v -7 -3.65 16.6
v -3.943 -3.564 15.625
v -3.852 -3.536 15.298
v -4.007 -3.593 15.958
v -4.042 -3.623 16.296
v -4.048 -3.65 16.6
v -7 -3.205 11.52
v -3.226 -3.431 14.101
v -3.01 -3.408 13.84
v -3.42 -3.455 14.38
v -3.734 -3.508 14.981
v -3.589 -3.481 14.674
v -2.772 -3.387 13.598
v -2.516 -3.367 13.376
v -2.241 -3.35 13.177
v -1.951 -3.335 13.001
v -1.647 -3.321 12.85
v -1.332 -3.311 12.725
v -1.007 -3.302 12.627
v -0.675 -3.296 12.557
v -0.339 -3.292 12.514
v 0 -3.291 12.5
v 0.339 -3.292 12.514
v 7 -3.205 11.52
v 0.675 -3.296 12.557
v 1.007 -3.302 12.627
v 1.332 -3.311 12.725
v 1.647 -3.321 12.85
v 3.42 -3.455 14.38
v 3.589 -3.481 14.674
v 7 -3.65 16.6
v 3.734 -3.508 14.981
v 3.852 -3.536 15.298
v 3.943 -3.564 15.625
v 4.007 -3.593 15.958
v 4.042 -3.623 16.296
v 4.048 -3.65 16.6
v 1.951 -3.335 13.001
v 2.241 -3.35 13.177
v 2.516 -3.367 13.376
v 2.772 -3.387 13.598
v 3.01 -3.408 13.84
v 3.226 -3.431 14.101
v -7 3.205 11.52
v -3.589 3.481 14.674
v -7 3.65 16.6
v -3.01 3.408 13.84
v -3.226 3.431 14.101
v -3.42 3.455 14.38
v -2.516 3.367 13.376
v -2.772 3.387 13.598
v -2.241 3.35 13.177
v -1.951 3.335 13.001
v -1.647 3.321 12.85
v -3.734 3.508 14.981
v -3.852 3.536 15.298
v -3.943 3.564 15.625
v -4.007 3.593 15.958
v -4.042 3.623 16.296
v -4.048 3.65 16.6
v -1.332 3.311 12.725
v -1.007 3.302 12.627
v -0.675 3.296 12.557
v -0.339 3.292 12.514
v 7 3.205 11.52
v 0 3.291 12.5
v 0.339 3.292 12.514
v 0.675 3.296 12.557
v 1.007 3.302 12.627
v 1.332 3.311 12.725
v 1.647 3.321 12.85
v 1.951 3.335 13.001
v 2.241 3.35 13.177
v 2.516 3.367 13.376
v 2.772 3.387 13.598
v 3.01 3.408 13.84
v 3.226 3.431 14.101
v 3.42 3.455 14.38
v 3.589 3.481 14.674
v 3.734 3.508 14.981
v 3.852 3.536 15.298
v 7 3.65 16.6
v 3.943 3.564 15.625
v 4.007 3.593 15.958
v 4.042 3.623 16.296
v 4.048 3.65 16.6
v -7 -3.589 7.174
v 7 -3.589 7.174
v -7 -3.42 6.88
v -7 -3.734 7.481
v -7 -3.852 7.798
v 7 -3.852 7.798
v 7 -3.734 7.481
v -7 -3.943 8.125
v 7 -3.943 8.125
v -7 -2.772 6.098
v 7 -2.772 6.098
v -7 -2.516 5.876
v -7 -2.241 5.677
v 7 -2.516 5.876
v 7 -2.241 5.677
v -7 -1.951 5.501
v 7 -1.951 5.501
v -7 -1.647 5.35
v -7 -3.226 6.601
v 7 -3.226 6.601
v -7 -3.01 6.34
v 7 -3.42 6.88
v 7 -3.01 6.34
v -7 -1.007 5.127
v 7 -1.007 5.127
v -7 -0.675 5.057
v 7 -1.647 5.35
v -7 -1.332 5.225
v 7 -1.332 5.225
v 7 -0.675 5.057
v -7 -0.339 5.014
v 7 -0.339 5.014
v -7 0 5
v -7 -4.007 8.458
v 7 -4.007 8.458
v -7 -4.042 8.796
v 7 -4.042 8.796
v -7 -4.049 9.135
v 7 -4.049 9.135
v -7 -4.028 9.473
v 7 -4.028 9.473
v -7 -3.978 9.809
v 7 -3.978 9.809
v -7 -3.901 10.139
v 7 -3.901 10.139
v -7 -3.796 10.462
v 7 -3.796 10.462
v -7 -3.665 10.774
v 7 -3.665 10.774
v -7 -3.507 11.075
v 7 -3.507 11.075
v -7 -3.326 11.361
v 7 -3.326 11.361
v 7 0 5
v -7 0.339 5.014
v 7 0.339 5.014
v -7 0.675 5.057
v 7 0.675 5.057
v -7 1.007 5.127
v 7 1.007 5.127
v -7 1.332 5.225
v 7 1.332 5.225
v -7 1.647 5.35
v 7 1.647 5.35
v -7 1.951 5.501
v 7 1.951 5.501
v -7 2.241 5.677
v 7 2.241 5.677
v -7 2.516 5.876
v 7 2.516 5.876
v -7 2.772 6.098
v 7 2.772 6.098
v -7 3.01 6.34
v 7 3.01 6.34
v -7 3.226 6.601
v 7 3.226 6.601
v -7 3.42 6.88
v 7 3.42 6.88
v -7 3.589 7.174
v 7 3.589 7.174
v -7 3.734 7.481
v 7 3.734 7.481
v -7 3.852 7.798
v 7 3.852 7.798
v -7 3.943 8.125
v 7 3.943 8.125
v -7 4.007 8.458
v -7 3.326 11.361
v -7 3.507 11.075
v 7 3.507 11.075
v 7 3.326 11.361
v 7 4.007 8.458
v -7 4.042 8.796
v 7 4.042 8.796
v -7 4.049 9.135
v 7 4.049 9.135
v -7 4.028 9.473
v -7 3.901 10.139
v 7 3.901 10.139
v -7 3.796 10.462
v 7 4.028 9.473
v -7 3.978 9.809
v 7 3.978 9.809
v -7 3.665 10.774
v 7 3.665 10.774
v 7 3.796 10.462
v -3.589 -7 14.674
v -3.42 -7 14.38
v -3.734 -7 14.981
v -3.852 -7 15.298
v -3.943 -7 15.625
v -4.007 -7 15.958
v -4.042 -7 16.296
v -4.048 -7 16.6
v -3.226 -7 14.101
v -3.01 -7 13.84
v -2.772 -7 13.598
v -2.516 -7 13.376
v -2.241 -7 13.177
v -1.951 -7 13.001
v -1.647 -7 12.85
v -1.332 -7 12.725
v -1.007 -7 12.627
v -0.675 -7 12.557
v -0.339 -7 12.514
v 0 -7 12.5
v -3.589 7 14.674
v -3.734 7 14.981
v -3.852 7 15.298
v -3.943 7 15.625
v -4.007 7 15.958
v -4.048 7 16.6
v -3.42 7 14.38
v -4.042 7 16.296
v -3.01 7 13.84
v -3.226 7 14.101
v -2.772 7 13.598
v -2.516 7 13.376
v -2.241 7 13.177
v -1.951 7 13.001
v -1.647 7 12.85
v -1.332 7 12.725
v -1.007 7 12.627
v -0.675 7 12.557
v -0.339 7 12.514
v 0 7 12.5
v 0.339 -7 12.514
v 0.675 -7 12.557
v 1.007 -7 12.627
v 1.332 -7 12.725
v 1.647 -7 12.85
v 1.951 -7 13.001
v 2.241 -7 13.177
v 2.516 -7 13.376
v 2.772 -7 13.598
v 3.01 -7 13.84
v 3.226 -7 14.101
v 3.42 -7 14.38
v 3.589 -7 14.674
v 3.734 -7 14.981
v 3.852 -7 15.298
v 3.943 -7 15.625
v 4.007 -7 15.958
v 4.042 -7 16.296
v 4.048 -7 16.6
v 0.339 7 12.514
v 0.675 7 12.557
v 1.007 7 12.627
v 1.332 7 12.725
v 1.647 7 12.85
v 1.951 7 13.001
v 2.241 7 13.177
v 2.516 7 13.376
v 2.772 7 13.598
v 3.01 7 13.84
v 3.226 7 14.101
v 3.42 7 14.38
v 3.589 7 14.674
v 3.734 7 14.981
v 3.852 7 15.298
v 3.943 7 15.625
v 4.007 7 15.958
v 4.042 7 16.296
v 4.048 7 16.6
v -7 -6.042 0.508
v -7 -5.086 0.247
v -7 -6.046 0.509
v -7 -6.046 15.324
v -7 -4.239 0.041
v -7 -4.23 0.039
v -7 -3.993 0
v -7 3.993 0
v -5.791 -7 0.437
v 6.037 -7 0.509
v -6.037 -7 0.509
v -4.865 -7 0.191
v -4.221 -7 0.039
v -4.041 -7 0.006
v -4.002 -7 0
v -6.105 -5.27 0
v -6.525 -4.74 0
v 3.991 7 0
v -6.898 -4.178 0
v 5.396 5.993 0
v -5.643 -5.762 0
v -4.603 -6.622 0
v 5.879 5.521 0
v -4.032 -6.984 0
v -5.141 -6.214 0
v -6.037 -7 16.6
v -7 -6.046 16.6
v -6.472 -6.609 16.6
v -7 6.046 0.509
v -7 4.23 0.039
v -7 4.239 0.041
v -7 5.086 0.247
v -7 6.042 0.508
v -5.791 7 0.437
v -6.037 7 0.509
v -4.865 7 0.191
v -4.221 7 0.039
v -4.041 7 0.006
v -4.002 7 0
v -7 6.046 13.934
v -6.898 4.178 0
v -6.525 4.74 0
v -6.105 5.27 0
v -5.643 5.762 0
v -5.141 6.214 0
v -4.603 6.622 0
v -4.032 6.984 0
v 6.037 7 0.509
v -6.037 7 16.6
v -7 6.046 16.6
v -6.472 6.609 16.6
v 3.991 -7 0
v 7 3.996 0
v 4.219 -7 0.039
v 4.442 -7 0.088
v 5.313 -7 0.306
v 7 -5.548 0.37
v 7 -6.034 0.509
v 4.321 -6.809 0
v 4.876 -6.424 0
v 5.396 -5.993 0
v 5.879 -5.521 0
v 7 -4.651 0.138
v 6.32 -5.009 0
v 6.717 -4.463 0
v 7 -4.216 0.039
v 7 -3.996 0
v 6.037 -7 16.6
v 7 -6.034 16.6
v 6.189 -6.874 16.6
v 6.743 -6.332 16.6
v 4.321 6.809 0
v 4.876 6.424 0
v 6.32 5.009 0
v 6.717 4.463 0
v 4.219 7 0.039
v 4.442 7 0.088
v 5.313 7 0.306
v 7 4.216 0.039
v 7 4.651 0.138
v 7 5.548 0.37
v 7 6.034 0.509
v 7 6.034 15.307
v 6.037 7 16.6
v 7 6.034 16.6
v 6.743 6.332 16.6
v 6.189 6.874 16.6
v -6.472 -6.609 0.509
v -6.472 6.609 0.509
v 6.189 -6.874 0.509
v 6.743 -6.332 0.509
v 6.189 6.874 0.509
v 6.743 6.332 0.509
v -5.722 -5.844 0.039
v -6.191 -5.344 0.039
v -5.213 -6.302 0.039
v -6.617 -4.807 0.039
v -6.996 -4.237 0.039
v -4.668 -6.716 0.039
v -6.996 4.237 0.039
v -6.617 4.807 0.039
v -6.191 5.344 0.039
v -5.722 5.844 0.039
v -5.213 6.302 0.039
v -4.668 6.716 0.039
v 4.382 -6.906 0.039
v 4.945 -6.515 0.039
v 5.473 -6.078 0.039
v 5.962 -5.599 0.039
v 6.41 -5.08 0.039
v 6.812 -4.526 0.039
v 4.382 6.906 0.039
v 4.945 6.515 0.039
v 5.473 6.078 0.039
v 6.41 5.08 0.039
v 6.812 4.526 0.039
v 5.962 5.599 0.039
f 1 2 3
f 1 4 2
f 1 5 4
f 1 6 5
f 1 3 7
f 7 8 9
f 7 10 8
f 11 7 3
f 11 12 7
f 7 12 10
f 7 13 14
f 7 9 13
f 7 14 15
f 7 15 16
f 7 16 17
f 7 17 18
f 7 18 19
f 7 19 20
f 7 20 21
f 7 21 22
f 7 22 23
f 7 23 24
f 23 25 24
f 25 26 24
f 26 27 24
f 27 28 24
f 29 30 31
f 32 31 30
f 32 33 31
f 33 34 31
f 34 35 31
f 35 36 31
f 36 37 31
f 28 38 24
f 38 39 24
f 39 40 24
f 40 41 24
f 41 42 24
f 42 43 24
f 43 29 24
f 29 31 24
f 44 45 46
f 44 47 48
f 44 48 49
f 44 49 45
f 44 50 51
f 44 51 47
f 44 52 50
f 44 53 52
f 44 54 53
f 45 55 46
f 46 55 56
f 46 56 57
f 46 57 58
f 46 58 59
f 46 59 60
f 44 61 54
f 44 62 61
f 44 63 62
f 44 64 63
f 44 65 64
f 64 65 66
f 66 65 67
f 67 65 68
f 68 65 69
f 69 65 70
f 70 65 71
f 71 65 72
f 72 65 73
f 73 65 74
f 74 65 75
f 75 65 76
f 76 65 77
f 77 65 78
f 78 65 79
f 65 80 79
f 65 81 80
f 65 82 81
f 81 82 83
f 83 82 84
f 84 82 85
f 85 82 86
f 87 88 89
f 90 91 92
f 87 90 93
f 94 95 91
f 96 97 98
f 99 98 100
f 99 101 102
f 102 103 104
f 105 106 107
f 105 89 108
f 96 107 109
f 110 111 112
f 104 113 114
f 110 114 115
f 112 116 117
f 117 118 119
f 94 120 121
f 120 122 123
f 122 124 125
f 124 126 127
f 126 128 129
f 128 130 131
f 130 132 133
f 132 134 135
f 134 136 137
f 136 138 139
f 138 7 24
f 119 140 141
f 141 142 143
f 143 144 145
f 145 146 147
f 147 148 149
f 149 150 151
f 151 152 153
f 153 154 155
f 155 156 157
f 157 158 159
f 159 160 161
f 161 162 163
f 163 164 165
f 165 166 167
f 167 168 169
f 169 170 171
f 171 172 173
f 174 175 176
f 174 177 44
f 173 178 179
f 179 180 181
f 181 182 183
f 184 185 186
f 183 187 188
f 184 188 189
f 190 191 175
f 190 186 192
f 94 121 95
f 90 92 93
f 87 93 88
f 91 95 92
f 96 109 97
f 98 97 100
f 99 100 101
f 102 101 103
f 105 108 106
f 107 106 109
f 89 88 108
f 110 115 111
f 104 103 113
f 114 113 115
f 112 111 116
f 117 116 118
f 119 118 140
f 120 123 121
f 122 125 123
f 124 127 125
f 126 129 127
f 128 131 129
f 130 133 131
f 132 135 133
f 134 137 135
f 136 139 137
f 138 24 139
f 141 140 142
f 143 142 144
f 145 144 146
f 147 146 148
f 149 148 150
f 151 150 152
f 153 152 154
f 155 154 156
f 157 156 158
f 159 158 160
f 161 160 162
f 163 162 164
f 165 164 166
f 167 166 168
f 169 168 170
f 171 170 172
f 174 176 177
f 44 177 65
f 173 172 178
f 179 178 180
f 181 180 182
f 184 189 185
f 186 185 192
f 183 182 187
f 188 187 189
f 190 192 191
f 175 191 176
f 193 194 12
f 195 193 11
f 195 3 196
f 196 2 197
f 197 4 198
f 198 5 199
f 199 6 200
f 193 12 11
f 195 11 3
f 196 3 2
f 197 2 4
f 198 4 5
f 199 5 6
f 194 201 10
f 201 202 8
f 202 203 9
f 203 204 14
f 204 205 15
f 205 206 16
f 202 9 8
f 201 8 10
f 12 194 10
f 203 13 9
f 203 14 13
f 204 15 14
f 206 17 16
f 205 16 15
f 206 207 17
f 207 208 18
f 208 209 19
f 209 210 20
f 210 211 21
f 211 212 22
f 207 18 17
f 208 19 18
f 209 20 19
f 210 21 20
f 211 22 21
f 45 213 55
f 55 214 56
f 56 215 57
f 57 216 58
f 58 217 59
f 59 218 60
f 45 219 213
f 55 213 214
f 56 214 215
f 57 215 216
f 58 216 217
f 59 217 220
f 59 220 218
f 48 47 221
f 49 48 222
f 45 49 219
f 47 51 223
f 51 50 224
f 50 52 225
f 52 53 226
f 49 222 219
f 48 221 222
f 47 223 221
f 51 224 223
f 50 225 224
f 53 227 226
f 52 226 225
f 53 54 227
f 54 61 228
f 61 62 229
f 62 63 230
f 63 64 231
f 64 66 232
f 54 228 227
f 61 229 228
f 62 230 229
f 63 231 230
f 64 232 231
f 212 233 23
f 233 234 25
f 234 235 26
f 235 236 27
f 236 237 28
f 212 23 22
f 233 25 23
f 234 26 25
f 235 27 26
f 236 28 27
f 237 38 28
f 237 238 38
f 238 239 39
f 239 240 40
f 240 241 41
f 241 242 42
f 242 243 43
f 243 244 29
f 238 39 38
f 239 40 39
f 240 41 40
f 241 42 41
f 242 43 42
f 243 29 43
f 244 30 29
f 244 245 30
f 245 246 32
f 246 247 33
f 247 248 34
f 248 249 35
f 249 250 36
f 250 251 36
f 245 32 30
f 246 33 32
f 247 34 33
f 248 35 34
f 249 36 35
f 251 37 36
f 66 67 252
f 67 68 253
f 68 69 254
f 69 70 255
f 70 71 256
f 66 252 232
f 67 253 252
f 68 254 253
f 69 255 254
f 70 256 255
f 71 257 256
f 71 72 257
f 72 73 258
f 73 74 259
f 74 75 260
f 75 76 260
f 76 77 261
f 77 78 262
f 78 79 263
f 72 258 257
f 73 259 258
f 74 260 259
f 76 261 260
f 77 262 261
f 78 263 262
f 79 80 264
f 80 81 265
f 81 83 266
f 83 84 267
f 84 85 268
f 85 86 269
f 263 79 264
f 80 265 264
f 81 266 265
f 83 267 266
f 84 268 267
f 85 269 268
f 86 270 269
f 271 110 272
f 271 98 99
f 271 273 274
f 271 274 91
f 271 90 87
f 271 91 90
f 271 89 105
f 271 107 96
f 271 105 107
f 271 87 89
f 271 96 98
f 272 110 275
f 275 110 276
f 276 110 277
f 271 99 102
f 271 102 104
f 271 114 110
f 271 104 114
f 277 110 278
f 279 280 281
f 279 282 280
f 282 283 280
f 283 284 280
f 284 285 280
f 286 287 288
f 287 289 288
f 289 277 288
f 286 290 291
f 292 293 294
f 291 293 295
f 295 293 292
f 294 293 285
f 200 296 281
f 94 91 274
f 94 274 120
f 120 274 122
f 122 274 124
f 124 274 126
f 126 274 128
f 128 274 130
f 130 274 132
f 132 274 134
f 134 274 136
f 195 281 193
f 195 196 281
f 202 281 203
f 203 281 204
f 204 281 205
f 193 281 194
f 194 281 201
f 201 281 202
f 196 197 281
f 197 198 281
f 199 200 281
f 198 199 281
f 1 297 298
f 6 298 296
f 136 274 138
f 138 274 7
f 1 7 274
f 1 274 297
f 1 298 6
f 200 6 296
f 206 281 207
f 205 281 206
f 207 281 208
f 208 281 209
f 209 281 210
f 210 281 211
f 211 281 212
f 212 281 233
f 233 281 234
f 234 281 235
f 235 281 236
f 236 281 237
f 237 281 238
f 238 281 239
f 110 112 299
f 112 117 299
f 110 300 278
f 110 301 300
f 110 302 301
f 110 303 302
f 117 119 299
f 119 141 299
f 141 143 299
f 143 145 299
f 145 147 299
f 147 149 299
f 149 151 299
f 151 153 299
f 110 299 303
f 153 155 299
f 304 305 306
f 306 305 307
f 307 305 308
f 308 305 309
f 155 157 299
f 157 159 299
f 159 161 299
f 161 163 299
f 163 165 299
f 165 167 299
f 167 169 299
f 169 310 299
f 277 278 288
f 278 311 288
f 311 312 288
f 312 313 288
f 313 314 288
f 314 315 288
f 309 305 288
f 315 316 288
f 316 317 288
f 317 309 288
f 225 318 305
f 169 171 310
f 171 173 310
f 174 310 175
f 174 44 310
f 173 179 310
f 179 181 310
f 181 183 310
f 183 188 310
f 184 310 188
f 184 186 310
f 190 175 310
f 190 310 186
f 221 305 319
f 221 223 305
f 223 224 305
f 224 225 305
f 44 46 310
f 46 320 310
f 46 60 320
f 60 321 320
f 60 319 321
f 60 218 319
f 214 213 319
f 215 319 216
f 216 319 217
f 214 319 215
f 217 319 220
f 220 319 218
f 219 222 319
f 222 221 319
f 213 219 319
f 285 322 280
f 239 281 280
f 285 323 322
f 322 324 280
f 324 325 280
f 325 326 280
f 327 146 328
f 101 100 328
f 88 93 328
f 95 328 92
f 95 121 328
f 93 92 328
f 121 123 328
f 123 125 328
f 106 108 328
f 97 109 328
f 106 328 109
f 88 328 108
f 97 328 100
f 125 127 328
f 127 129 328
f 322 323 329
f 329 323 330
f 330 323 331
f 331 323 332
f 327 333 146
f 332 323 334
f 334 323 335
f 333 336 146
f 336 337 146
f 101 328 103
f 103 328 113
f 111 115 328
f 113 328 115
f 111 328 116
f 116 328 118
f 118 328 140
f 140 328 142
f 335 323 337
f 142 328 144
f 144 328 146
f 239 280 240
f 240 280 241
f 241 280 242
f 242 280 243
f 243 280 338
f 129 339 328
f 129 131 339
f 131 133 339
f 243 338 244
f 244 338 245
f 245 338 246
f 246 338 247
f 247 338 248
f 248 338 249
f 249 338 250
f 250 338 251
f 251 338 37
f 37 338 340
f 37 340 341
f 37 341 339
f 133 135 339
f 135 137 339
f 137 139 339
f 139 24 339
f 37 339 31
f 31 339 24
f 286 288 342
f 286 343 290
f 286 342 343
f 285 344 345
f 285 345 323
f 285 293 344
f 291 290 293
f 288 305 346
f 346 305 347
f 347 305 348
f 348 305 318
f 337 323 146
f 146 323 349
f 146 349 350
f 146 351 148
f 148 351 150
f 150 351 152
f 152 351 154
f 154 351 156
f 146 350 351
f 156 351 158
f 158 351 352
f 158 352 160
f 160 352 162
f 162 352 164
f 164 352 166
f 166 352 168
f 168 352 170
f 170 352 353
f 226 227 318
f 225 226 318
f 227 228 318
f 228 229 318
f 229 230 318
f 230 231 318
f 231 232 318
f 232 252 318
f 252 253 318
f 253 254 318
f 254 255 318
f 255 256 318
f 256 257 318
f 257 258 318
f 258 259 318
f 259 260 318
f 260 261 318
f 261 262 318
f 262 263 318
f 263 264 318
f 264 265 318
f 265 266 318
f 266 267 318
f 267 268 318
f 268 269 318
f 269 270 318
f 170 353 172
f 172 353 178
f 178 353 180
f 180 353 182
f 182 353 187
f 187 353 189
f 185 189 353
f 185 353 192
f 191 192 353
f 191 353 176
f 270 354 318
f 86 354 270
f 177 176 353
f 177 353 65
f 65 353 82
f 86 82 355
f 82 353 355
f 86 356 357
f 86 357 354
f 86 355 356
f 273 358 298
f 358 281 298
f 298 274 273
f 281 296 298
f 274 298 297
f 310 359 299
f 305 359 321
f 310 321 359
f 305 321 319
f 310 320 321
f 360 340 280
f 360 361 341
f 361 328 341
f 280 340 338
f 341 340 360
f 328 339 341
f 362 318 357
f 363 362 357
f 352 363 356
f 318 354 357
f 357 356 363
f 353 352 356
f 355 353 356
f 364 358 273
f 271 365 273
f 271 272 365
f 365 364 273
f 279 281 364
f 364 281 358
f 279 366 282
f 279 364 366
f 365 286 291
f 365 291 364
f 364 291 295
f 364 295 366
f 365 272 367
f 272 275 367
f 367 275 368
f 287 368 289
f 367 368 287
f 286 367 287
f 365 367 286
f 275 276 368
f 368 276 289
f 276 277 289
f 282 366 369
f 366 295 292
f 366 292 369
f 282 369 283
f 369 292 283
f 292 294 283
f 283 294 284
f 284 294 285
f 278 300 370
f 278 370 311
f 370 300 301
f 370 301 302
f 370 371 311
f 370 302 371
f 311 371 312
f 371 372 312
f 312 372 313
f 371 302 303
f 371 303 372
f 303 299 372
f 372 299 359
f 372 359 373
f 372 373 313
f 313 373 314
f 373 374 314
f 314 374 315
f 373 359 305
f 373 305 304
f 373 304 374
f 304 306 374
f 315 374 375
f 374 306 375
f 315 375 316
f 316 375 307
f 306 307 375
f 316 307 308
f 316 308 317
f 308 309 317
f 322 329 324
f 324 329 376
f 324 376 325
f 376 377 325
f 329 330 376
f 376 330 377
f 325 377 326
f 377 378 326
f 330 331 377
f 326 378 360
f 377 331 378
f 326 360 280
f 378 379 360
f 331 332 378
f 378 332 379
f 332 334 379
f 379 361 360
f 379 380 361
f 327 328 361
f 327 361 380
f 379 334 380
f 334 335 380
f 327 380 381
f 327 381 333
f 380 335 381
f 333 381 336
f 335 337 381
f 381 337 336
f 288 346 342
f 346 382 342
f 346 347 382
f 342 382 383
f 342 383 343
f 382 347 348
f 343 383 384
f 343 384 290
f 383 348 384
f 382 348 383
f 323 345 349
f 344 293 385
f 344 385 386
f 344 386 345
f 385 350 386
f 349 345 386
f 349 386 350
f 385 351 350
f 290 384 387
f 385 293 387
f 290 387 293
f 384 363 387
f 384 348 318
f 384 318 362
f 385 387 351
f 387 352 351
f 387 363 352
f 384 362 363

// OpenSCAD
$fn=75;

$width=14;
$depth=14;
$height=16.6;

module body() {
    translate([-($width/2),-($depth/2),0]) {
        cube([$width,$depth,$height]);
    }
}

module holes() {
    $diameter=8.1;
    $radius=$diameter/2;

    module lowerHole() {
        $offset=5;
        
        translate([-$width,0,$offset+$radius]) {
            rotate([0,90,0]) {
                    cylinder(d=8.1, h=$width*2);
            }
        }
    }

    module upperHole() {
        $offset=12.5;
        
        translate([0,$depth,$offset+$radius]) {
            rotate([90,90,0]) {
                    cylinder(d=$diameter, h=$depth*2);
            }
        }
    }
    
    module gap() {
        translate([0,-1,15]) {
            rotate([5,0,0]) {
                cube([$width*2,5,10], center=true);
            }
        }
        translate([0,1,15]) {
            rotate([-5,0,0]) {
                cube([$width*2,5,10], center=true);
            }
        }
    }
    
    union() {
        lowerHole();
        upperHole();
        gap();
    }
}


intersection() {
    difference() {
        body();
        holes();
    }
    cylinder(h=$height, d=18.5);
    translate([0,0,21]) {
        sphere(d=45);
    }
}
